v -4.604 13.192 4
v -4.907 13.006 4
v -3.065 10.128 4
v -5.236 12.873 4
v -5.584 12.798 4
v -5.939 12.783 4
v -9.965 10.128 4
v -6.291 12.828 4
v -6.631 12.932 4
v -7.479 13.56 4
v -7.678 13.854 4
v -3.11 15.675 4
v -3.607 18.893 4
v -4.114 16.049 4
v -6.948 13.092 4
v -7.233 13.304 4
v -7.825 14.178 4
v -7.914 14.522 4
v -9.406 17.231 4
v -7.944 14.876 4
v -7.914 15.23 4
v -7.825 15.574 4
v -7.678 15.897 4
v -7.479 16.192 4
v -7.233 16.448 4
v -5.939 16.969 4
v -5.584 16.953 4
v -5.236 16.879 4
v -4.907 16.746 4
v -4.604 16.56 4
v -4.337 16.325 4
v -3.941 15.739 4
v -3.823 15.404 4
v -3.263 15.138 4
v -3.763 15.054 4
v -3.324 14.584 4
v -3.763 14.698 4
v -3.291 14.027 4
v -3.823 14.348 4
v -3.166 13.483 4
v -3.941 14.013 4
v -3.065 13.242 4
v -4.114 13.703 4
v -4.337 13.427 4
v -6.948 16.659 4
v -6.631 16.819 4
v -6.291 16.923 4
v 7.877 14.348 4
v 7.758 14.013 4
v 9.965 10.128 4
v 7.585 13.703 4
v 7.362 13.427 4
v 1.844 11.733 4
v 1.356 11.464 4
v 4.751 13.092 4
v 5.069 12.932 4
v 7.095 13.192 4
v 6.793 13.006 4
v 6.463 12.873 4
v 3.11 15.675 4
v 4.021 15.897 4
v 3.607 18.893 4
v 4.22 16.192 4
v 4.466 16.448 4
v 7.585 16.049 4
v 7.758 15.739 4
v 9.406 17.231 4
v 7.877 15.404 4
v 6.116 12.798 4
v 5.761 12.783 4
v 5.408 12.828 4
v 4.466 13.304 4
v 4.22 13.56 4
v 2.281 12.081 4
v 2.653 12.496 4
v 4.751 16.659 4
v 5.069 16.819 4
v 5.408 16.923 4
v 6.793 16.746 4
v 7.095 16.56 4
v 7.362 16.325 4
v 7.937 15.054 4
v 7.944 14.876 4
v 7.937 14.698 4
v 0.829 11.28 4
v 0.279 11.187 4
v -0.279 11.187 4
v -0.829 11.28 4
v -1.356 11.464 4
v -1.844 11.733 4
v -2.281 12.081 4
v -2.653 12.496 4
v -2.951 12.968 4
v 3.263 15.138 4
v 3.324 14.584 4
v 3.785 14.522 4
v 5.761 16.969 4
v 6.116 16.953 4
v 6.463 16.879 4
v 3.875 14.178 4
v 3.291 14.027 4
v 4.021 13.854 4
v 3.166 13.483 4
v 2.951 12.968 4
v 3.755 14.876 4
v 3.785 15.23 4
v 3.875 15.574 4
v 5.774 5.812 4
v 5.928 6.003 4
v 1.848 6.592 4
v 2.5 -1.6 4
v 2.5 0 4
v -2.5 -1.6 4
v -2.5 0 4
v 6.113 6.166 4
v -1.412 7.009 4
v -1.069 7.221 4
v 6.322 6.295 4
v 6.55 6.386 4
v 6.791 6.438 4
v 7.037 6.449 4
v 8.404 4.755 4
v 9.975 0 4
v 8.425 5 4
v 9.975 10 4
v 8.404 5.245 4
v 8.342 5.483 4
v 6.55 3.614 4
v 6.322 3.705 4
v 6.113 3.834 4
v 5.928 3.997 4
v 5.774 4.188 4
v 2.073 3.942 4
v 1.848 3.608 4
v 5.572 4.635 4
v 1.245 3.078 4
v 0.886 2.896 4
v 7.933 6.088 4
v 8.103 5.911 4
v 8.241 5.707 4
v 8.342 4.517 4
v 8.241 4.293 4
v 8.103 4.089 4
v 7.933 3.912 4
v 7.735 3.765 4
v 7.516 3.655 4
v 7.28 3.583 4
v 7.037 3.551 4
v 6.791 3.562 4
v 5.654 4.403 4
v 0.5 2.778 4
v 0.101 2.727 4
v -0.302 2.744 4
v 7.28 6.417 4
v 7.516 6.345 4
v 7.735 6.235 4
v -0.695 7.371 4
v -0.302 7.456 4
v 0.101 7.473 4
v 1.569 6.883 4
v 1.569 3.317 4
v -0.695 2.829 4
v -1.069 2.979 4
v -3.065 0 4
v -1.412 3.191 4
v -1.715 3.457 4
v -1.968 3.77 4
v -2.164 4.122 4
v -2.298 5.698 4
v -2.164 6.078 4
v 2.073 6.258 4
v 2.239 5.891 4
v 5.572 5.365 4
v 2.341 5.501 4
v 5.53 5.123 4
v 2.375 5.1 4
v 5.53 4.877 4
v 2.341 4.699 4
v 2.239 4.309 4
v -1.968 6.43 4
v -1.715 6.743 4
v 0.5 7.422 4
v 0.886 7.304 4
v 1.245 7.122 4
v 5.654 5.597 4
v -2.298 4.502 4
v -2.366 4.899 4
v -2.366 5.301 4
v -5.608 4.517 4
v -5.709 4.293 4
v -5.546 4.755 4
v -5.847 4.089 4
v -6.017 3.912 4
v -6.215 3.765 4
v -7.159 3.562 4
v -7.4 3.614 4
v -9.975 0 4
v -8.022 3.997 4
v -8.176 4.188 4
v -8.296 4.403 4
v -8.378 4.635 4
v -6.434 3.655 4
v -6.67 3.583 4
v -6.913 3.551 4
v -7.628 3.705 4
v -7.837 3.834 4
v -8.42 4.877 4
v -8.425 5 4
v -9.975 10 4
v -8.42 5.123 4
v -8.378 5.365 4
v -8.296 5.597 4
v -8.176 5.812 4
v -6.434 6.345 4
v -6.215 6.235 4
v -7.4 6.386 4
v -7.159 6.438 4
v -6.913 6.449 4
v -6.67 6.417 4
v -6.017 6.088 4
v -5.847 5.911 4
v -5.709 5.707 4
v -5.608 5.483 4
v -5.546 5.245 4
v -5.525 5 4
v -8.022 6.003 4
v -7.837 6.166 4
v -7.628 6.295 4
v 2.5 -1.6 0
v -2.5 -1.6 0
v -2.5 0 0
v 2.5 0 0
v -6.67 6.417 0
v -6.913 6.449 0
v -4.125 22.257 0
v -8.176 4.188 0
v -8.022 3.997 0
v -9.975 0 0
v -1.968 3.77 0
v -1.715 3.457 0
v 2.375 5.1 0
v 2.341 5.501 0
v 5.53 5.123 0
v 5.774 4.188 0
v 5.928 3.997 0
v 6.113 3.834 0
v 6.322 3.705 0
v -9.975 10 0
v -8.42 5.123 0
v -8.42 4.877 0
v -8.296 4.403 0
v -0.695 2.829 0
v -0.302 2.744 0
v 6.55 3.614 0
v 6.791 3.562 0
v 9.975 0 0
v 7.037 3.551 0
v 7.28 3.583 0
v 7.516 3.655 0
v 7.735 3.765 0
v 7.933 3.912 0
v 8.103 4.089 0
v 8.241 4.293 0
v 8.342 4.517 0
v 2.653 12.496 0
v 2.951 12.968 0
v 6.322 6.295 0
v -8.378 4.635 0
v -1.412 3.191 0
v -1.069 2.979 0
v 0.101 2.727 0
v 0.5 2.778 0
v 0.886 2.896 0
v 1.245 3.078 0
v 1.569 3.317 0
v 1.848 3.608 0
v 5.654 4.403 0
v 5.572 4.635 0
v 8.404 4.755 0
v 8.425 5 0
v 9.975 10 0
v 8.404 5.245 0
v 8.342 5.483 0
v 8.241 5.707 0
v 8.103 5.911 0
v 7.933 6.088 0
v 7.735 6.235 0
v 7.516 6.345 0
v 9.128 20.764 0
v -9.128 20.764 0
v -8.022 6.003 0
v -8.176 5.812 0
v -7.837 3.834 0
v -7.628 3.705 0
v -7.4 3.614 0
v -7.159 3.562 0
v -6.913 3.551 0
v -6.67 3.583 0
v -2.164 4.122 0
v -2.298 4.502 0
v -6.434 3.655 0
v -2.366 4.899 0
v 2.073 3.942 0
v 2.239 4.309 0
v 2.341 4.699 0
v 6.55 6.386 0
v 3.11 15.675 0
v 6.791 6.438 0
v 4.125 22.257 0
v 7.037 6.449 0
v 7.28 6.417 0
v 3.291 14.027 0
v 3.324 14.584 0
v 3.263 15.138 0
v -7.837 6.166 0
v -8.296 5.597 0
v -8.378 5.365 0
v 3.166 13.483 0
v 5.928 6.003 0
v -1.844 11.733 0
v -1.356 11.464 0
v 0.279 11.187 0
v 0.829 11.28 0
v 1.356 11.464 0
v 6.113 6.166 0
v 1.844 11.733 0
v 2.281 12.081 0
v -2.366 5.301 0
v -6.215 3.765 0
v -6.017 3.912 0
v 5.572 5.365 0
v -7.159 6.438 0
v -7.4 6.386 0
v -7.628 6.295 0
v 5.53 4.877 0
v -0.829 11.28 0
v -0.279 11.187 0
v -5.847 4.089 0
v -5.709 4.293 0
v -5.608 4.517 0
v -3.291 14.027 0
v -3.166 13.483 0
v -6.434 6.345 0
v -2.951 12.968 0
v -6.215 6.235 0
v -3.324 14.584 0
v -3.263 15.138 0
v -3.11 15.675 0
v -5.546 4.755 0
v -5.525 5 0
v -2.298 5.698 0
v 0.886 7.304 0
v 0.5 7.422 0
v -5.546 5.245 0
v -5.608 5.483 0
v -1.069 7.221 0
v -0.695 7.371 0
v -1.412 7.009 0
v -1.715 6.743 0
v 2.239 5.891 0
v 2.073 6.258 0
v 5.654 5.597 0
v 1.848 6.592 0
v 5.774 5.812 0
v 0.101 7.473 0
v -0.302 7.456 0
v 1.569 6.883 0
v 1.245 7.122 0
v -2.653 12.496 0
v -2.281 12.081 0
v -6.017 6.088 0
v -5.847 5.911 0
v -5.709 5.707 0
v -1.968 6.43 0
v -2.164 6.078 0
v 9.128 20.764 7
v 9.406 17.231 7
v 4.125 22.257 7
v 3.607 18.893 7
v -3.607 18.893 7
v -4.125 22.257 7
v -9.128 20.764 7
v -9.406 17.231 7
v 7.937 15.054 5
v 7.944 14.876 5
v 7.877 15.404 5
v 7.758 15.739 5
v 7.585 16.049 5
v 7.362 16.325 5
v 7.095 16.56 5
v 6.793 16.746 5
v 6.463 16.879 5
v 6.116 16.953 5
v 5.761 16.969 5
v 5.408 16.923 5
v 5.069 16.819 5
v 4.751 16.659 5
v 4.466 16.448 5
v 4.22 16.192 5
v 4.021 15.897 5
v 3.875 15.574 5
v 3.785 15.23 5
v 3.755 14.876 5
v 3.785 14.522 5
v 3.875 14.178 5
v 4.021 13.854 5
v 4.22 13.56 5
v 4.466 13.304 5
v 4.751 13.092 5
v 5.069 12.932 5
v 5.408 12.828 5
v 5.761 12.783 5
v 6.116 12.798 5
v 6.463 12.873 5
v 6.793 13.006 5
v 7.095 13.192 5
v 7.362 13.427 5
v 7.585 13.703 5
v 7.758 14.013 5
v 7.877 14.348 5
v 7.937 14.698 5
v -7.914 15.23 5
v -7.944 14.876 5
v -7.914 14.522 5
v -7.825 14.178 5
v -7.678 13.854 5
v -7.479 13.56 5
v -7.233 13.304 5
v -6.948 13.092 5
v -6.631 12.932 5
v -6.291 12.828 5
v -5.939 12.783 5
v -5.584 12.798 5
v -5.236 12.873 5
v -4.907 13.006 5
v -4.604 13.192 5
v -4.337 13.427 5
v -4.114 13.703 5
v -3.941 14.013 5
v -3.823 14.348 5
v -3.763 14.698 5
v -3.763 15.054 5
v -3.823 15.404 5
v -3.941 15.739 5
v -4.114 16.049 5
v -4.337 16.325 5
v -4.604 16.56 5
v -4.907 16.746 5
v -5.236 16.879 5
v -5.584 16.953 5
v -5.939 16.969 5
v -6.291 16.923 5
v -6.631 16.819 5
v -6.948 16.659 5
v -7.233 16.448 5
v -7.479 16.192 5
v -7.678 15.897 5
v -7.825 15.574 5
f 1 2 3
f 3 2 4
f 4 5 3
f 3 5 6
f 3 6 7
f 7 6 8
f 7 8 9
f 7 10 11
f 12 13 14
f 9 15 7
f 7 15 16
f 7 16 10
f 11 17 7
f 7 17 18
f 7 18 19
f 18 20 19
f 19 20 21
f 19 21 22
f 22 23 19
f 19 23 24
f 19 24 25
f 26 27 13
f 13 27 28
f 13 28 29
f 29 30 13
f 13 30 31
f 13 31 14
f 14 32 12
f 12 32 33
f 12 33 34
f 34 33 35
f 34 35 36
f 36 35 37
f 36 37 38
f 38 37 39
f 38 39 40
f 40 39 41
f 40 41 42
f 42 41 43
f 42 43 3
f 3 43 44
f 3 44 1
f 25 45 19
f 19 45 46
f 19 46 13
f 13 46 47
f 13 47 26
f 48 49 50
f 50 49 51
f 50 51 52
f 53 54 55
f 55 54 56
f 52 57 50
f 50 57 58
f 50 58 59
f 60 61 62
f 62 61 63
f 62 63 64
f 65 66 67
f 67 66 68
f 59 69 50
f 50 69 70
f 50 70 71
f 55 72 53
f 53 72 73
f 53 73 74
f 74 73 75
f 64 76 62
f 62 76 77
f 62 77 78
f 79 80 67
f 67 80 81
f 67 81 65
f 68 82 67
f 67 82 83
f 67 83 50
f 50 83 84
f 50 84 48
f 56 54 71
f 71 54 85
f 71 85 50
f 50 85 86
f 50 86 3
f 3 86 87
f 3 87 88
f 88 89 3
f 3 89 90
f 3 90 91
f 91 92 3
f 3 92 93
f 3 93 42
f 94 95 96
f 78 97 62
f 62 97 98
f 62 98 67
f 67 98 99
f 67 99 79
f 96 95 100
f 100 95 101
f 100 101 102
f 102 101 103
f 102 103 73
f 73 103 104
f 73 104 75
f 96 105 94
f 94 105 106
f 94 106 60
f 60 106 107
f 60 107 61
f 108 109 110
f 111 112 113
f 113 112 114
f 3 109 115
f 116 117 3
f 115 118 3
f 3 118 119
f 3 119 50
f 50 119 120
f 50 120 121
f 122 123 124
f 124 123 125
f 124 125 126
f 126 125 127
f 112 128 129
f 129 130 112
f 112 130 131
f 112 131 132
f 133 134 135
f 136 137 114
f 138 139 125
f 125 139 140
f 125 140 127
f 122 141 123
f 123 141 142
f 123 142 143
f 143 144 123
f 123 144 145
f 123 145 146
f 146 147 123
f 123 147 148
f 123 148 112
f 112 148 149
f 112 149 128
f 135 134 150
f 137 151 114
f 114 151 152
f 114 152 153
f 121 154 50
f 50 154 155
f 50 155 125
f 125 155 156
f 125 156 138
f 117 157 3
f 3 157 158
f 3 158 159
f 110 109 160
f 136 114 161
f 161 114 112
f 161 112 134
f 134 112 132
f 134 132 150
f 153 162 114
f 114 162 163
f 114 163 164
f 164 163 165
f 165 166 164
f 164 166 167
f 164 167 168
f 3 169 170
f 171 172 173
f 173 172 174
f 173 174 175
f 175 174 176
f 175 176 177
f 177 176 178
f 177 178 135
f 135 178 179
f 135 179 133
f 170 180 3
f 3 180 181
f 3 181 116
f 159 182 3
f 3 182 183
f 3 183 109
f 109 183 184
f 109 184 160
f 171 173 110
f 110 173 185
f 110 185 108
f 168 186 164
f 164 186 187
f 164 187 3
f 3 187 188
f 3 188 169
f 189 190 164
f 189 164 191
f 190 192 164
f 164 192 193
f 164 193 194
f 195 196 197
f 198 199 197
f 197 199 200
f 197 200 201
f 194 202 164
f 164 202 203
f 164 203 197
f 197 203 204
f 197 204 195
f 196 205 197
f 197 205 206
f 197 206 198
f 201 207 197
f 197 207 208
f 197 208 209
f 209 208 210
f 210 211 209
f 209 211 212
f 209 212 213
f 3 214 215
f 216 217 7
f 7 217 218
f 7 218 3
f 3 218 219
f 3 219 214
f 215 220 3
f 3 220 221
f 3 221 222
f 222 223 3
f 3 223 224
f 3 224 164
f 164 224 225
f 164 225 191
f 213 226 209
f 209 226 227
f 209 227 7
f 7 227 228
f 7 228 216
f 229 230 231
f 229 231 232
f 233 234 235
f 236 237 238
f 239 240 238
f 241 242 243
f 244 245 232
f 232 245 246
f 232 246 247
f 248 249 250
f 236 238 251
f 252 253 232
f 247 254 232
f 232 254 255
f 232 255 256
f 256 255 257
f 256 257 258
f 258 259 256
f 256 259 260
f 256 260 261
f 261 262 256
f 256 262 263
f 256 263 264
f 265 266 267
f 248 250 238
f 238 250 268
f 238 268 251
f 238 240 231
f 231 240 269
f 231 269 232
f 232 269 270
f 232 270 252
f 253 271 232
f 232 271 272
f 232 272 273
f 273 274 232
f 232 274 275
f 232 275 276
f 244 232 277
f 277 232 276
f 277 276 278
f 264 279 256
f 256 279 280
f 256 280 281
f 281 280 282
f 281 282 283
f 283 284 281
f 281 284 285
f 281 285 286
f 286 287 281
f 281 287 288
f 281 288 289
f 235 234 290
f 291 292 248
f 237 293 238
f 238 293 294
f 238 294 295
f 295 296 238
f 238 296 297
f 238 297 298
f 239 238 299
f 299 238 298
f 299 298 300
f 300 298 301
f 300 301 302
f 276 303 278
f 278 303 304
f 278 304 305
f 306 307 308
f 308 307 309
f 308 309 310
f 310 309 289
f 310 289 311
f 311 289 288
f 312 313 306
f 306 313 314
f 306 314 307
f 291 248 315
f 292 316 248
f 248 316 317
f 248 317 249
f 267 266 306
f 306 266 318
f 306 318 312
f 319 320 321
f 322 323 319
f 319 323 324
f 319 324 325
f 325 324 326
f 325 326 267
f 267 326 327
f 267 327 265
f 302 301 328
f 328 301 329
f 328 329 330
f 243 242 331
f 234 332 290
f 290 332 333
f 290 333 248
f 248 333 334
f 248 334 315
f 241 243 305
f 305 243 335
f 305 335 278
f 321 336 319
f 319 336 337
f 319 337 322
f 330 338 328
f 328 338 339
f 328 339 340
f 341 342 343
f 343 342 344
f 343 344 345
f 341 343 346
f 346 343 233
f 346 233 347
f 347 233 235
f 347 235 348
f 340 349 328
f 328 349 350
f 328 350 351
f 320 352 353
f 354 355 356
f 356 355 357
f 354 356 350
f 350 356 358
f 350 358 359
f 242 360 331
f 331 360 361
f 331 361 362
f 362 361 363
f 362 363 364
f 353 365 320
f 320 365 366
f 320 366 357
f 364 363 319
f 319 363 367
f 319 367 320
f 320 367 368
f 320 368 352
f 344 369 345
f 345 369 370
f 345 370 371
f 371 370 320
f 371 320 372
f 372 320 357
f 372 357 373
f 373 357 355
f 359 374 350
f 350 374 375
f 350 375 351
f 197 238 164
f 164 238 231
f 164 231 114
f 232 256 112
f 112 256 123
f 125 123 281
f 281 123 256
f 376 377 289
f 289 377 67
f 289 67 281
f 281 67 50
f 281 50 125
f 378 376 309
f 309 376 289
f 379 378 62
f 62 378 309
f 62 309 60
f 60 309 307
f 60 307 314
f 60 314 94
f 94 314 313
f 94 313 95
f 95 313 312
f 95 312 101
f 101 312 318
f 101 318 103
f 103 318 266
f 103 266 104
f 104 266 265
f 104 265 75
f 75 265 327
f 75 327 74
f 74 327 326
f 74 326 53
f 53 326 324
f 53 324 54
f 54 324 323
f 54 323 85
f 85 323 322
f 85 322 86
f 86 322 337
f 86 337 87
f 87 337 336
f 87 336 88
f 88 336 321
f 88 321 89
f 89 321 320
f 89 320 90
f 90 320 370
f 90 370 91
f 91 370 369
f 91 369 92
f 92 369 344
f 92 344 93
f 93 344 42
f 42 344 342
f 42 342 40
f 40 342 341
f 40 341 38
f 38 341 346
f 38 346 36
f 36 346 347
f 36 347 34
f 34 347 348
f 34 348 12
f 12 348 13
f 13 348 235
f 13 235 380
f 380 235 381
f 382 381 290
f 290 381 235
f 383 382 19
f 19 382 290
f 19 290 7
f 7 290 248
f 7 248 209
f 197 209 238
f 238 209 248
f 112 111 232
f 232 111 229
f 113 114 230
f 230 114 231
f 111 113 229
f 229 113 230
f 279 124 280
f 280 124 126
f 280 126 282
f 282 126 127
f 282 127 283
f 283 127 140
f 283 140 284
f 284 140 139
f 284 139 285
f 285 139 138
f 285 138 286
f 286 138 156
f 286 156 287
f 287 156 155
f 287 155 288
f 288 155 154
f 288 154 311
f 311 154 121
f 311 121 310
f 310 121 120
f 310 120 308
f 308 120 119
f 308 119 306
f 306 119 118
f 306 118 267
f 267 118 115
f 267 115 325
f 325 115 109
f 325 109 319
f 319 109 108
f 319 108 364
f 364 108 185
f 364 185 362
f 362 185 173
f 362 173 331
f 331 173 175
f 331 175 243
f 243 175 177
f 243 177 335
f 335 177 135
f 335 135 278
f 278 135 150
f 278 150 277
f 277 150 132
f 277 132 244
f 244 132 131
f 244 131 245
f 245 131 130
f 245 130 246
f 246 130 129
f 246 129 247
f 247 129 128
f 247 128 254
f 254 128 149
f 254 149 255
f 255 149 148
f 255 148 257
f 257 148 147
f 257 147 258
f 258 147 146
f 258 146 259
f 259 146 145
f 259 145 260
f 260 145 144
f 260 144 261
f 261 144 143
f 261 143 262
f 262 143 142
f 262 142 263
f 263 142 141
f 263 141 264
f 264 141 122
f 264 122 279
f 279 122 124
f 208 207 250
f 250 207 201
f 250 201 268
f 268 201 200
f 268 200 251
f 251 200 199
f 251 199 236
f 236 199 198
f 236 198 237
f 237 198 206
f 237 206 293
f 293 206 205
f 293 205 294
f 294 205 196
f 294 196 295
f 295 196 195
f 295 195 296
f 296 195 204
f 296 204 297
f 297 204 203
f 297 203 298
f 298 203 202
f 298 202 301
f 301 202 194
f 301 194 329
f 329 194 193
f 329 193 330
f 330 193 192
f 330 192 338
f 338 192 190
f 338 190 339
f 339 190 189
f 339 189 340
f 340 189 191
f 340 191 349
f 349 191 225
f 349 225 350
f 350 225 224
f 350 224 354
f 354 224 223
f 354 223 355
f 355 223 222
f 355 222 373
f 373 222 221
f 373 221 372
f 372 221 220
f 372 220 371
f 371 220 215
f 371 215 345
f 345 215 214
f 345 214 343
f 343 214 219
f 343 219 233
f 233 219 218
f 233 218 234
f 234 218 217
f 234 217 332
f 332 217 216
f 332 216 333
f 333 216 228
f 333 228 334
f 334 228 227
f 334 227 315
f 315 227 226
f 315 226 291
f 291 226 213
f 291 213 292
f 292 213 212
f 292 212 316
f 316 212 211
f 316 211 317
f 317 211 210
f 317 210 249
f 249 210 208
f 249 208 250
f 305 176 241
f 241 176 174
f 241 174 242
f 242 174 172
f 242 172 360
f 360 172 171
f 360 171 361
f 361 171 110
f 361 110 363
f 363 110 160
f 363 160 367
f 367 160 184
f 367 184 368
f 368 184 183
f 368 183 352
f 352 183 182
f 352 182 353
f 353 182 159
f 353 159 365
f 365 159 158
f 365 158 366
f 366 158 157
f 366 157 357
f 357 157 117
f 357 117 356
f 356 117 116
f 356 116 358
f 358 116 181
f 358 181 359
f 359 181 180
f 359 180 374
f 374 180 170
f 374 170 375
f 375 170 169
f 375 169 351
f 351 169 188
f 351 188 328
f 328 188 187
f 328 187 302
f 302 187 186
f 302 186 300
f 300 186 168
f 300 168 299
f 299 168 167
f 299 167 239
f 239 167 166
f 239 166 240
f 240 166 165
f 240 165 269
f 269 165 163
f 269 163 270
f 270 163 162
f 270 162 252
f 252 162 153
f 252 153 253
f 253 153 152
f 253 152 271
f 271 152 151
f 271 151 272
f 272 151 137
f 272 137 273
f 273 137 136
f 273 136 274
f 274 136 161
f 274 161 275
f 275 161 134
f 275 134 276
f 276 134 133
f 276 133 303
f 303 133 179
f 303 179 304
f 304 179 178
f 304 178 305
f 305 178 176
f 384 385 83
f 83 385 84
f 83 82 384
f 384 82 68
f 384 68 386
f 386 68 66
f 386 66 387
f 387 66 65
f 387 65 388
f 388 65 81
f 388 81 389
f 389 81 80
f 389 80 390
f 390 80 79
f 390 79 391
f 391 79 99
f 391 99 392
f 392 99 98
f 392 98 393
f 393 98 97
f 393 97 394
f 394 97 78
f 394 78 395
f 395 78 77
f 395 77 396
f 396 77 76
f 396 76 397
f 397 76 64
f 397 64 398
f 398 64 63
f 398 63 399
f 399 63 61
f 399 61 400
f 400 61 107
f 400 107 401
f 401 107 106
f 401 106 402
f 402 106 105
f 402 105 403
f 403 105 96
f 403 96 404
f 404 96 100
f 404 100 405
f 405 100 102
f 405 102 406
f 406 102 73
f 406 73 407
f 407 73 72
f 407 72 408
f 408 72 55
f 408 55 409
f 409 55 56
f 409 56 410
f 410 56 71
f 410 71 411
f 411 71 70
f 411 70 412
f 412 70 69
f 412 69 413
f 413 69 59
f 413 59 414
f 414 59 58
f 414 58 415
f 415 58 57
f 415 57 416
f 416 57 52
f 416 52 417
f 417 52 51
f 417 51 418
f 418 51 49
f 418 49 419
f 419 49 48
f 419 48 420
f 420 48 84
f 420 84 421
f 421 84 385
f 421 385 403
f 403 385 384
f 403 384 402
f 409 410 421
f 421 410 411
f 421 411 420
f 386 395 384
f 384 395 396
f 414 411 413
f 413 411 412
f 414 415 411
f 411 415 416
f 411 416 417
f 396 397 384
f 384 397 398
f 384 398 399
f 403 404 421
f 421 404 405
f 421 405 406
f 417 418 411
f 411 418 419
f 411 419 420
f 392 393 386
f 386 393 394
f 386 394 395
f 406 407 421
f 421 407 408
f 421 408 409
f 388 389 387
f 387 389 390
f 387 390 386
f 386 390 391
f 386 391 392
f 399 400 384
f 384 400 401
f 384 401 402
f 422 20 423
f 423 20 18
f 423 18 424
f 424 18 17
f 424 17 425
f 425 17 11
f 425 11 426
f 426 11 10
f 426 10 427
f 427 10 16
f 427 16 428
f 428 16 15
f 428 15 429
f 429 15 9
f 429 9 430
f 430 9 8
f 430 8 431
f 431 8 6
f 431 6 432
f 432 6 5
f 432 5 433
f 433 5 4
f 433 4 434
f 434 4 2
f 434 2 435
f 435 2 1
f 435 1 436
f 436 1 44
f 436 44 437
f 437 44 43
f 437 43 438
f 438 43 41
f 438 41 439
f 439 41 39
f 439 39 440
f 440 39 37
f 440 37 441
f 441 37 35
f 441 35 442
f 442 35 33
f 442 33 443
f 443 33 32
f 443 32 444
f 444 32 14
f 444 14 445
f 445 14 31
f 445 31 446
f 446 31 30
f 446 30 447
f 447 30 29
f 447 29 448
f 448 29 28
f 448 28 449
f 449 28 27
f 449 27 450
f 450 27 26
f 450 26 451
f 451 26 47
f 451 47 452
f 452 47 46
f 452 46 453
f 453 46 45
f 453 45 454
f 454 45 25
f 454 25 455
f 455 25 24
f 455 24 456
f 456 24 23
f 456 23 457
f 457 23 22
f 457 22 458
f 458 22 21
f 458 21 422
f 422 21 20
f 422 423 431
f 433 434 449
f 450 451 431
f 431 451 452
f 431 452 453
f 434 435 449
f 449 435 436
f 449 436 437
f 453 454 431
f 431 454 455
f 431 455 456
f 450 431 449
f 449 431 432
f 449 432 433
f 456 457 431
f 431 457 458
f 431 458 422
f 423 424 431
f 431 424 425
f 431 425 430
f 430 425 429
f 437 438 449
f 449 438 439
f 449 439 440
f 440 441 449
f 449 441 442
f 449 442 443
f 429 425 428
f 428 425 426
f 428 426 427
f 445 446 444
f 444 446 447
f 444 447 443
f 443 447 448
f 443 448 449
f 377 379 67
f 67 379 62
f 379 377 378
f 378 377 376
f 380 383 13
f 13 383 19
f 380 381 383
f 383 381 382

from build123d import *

# Parameters (mm, degrees)
BOSS_EXTRUDE1_DEPTH = 4
SKETCH2_W           = 5
SKETCH2_H           = 1.6
BOSS_EXTRUDE2_DEPTH = 4
SKETCH5_R           = 1.45
CUT_EXTRUDE3_DEPTH  = 14.2
SKETCH7_R           = 2.375
CUT_EXTRUDE6_DEPTH  = 15
SKETCH8_R           = 2.094517613
BOSS_EXTRUDE3_DEPTH = 1
BOSS_EXTRUDE4_DEPTH = 3


with BuildPart() as part:
    # Sketch1 → Boss-Extrude1 (new body)
    with BuildSketch(Plane.XY):
        with BuildLine():
            Line((-9.975, 0), (9.975, 0))
            Line((9.975, 0), (9.975, 10))
            Line((9.975, 10), (9.128095747, 20.764013839))
            Line((9.128095747, 20.764013839), (4.125144755, 22.256540984))
            Line((4.125144755, 22.256540984), (3.110466203, 15.675))
            ThreePointArc((3.110466203, 15.675), (0, 11.175), (-3.110466203, 15.675))
            Line((-3.110466203, 15.675), (-4.125144755, 22.256540984))
            Line((-4.125144755, 22.256540984), (-9.128095747, 20.764013839))
            Line((-9.128095747, 20.764013839), (-9.975, 10))
            Line((-9.975, 10), (-9.975, 0))
        make_face()
    extrude(amount=BOSS_EXTRUDE1_DEPTH)

    # Sketch2 → Boss-Extrude2 (add)
    with BuildSketch(Plane(origin=(0, 0, 0), x_dir=(-1, 0, 0), z_dir=(0, 0, -1))):
        with Locations((0, -0.8)):
            Rectangle(SKETCH2_W, SKETCH2_H)
    extrude(amount=-BOSS_EXTRUDE2_DEPTH)

    # Sketch5 → Cut-Extrude3 (cut)
    with BuildSketch(Plane.XY.offset(4)):
        with Locations((6.975, 5)):
            Circle(SKETCH5_R)
    cut_extrude3 = extrude(amount=-CUT_EXTRUDE3_DEPTH, mode=Mode.SUBTRACT)

    # Mirror1: Cut-Extrude3 across plane
    add(cut_extrude3.mirror(Plane(origin=(0, 0, 0), x_dir=(0, 0, 1), z_dir=(1, 0, 0))), mode=Mode.SUBTRACT)

    # Sketch7 → Cut-Extrude6 (cut)
    with BuildSketch(Plane.XY.offset(4)):
        with Locations((0, 5.1)):
            Circle(SKETCH7_R)
    extrude(amount=-CUT_EXTRUDE6_DEPTH, mode=Mode.SUBTRACT)

    # Sketch8 → Boss-Extrude3 (add)
    with BuildSketch(Plane.XY.offset(4)):
        with Locations((5.849630313, 14.875934422)):
            Circle(SKETCH8_R)
        with Locations(Location((-5.849630313, 14.875934422, 0), (0, 0, 180))):
            Circle(SKETCH8_R)
    extrude(amount=BOSS_EXTRUDE3_DEPTH)

    # Sketch9 → Boss-Extrude4 (add)
    with BuildSketch(Plane.XY.offset(4)):
        Polygon((4.125144755, 22.256540984), (3.606658762, 18.893469192), (9.406048413, 17.23128114), (9.128095747, 20.764013839), align=None)
        Polygon((-9.128095747, 20.764013839), (-4.125144755, 22.256540984), (-3.606658762, 18.893469192), (-9.406048413, 17.23128114), align=None)
    extrude(amount=BOSS_EXTRUDE4_DEPTH)


solid = part.part
